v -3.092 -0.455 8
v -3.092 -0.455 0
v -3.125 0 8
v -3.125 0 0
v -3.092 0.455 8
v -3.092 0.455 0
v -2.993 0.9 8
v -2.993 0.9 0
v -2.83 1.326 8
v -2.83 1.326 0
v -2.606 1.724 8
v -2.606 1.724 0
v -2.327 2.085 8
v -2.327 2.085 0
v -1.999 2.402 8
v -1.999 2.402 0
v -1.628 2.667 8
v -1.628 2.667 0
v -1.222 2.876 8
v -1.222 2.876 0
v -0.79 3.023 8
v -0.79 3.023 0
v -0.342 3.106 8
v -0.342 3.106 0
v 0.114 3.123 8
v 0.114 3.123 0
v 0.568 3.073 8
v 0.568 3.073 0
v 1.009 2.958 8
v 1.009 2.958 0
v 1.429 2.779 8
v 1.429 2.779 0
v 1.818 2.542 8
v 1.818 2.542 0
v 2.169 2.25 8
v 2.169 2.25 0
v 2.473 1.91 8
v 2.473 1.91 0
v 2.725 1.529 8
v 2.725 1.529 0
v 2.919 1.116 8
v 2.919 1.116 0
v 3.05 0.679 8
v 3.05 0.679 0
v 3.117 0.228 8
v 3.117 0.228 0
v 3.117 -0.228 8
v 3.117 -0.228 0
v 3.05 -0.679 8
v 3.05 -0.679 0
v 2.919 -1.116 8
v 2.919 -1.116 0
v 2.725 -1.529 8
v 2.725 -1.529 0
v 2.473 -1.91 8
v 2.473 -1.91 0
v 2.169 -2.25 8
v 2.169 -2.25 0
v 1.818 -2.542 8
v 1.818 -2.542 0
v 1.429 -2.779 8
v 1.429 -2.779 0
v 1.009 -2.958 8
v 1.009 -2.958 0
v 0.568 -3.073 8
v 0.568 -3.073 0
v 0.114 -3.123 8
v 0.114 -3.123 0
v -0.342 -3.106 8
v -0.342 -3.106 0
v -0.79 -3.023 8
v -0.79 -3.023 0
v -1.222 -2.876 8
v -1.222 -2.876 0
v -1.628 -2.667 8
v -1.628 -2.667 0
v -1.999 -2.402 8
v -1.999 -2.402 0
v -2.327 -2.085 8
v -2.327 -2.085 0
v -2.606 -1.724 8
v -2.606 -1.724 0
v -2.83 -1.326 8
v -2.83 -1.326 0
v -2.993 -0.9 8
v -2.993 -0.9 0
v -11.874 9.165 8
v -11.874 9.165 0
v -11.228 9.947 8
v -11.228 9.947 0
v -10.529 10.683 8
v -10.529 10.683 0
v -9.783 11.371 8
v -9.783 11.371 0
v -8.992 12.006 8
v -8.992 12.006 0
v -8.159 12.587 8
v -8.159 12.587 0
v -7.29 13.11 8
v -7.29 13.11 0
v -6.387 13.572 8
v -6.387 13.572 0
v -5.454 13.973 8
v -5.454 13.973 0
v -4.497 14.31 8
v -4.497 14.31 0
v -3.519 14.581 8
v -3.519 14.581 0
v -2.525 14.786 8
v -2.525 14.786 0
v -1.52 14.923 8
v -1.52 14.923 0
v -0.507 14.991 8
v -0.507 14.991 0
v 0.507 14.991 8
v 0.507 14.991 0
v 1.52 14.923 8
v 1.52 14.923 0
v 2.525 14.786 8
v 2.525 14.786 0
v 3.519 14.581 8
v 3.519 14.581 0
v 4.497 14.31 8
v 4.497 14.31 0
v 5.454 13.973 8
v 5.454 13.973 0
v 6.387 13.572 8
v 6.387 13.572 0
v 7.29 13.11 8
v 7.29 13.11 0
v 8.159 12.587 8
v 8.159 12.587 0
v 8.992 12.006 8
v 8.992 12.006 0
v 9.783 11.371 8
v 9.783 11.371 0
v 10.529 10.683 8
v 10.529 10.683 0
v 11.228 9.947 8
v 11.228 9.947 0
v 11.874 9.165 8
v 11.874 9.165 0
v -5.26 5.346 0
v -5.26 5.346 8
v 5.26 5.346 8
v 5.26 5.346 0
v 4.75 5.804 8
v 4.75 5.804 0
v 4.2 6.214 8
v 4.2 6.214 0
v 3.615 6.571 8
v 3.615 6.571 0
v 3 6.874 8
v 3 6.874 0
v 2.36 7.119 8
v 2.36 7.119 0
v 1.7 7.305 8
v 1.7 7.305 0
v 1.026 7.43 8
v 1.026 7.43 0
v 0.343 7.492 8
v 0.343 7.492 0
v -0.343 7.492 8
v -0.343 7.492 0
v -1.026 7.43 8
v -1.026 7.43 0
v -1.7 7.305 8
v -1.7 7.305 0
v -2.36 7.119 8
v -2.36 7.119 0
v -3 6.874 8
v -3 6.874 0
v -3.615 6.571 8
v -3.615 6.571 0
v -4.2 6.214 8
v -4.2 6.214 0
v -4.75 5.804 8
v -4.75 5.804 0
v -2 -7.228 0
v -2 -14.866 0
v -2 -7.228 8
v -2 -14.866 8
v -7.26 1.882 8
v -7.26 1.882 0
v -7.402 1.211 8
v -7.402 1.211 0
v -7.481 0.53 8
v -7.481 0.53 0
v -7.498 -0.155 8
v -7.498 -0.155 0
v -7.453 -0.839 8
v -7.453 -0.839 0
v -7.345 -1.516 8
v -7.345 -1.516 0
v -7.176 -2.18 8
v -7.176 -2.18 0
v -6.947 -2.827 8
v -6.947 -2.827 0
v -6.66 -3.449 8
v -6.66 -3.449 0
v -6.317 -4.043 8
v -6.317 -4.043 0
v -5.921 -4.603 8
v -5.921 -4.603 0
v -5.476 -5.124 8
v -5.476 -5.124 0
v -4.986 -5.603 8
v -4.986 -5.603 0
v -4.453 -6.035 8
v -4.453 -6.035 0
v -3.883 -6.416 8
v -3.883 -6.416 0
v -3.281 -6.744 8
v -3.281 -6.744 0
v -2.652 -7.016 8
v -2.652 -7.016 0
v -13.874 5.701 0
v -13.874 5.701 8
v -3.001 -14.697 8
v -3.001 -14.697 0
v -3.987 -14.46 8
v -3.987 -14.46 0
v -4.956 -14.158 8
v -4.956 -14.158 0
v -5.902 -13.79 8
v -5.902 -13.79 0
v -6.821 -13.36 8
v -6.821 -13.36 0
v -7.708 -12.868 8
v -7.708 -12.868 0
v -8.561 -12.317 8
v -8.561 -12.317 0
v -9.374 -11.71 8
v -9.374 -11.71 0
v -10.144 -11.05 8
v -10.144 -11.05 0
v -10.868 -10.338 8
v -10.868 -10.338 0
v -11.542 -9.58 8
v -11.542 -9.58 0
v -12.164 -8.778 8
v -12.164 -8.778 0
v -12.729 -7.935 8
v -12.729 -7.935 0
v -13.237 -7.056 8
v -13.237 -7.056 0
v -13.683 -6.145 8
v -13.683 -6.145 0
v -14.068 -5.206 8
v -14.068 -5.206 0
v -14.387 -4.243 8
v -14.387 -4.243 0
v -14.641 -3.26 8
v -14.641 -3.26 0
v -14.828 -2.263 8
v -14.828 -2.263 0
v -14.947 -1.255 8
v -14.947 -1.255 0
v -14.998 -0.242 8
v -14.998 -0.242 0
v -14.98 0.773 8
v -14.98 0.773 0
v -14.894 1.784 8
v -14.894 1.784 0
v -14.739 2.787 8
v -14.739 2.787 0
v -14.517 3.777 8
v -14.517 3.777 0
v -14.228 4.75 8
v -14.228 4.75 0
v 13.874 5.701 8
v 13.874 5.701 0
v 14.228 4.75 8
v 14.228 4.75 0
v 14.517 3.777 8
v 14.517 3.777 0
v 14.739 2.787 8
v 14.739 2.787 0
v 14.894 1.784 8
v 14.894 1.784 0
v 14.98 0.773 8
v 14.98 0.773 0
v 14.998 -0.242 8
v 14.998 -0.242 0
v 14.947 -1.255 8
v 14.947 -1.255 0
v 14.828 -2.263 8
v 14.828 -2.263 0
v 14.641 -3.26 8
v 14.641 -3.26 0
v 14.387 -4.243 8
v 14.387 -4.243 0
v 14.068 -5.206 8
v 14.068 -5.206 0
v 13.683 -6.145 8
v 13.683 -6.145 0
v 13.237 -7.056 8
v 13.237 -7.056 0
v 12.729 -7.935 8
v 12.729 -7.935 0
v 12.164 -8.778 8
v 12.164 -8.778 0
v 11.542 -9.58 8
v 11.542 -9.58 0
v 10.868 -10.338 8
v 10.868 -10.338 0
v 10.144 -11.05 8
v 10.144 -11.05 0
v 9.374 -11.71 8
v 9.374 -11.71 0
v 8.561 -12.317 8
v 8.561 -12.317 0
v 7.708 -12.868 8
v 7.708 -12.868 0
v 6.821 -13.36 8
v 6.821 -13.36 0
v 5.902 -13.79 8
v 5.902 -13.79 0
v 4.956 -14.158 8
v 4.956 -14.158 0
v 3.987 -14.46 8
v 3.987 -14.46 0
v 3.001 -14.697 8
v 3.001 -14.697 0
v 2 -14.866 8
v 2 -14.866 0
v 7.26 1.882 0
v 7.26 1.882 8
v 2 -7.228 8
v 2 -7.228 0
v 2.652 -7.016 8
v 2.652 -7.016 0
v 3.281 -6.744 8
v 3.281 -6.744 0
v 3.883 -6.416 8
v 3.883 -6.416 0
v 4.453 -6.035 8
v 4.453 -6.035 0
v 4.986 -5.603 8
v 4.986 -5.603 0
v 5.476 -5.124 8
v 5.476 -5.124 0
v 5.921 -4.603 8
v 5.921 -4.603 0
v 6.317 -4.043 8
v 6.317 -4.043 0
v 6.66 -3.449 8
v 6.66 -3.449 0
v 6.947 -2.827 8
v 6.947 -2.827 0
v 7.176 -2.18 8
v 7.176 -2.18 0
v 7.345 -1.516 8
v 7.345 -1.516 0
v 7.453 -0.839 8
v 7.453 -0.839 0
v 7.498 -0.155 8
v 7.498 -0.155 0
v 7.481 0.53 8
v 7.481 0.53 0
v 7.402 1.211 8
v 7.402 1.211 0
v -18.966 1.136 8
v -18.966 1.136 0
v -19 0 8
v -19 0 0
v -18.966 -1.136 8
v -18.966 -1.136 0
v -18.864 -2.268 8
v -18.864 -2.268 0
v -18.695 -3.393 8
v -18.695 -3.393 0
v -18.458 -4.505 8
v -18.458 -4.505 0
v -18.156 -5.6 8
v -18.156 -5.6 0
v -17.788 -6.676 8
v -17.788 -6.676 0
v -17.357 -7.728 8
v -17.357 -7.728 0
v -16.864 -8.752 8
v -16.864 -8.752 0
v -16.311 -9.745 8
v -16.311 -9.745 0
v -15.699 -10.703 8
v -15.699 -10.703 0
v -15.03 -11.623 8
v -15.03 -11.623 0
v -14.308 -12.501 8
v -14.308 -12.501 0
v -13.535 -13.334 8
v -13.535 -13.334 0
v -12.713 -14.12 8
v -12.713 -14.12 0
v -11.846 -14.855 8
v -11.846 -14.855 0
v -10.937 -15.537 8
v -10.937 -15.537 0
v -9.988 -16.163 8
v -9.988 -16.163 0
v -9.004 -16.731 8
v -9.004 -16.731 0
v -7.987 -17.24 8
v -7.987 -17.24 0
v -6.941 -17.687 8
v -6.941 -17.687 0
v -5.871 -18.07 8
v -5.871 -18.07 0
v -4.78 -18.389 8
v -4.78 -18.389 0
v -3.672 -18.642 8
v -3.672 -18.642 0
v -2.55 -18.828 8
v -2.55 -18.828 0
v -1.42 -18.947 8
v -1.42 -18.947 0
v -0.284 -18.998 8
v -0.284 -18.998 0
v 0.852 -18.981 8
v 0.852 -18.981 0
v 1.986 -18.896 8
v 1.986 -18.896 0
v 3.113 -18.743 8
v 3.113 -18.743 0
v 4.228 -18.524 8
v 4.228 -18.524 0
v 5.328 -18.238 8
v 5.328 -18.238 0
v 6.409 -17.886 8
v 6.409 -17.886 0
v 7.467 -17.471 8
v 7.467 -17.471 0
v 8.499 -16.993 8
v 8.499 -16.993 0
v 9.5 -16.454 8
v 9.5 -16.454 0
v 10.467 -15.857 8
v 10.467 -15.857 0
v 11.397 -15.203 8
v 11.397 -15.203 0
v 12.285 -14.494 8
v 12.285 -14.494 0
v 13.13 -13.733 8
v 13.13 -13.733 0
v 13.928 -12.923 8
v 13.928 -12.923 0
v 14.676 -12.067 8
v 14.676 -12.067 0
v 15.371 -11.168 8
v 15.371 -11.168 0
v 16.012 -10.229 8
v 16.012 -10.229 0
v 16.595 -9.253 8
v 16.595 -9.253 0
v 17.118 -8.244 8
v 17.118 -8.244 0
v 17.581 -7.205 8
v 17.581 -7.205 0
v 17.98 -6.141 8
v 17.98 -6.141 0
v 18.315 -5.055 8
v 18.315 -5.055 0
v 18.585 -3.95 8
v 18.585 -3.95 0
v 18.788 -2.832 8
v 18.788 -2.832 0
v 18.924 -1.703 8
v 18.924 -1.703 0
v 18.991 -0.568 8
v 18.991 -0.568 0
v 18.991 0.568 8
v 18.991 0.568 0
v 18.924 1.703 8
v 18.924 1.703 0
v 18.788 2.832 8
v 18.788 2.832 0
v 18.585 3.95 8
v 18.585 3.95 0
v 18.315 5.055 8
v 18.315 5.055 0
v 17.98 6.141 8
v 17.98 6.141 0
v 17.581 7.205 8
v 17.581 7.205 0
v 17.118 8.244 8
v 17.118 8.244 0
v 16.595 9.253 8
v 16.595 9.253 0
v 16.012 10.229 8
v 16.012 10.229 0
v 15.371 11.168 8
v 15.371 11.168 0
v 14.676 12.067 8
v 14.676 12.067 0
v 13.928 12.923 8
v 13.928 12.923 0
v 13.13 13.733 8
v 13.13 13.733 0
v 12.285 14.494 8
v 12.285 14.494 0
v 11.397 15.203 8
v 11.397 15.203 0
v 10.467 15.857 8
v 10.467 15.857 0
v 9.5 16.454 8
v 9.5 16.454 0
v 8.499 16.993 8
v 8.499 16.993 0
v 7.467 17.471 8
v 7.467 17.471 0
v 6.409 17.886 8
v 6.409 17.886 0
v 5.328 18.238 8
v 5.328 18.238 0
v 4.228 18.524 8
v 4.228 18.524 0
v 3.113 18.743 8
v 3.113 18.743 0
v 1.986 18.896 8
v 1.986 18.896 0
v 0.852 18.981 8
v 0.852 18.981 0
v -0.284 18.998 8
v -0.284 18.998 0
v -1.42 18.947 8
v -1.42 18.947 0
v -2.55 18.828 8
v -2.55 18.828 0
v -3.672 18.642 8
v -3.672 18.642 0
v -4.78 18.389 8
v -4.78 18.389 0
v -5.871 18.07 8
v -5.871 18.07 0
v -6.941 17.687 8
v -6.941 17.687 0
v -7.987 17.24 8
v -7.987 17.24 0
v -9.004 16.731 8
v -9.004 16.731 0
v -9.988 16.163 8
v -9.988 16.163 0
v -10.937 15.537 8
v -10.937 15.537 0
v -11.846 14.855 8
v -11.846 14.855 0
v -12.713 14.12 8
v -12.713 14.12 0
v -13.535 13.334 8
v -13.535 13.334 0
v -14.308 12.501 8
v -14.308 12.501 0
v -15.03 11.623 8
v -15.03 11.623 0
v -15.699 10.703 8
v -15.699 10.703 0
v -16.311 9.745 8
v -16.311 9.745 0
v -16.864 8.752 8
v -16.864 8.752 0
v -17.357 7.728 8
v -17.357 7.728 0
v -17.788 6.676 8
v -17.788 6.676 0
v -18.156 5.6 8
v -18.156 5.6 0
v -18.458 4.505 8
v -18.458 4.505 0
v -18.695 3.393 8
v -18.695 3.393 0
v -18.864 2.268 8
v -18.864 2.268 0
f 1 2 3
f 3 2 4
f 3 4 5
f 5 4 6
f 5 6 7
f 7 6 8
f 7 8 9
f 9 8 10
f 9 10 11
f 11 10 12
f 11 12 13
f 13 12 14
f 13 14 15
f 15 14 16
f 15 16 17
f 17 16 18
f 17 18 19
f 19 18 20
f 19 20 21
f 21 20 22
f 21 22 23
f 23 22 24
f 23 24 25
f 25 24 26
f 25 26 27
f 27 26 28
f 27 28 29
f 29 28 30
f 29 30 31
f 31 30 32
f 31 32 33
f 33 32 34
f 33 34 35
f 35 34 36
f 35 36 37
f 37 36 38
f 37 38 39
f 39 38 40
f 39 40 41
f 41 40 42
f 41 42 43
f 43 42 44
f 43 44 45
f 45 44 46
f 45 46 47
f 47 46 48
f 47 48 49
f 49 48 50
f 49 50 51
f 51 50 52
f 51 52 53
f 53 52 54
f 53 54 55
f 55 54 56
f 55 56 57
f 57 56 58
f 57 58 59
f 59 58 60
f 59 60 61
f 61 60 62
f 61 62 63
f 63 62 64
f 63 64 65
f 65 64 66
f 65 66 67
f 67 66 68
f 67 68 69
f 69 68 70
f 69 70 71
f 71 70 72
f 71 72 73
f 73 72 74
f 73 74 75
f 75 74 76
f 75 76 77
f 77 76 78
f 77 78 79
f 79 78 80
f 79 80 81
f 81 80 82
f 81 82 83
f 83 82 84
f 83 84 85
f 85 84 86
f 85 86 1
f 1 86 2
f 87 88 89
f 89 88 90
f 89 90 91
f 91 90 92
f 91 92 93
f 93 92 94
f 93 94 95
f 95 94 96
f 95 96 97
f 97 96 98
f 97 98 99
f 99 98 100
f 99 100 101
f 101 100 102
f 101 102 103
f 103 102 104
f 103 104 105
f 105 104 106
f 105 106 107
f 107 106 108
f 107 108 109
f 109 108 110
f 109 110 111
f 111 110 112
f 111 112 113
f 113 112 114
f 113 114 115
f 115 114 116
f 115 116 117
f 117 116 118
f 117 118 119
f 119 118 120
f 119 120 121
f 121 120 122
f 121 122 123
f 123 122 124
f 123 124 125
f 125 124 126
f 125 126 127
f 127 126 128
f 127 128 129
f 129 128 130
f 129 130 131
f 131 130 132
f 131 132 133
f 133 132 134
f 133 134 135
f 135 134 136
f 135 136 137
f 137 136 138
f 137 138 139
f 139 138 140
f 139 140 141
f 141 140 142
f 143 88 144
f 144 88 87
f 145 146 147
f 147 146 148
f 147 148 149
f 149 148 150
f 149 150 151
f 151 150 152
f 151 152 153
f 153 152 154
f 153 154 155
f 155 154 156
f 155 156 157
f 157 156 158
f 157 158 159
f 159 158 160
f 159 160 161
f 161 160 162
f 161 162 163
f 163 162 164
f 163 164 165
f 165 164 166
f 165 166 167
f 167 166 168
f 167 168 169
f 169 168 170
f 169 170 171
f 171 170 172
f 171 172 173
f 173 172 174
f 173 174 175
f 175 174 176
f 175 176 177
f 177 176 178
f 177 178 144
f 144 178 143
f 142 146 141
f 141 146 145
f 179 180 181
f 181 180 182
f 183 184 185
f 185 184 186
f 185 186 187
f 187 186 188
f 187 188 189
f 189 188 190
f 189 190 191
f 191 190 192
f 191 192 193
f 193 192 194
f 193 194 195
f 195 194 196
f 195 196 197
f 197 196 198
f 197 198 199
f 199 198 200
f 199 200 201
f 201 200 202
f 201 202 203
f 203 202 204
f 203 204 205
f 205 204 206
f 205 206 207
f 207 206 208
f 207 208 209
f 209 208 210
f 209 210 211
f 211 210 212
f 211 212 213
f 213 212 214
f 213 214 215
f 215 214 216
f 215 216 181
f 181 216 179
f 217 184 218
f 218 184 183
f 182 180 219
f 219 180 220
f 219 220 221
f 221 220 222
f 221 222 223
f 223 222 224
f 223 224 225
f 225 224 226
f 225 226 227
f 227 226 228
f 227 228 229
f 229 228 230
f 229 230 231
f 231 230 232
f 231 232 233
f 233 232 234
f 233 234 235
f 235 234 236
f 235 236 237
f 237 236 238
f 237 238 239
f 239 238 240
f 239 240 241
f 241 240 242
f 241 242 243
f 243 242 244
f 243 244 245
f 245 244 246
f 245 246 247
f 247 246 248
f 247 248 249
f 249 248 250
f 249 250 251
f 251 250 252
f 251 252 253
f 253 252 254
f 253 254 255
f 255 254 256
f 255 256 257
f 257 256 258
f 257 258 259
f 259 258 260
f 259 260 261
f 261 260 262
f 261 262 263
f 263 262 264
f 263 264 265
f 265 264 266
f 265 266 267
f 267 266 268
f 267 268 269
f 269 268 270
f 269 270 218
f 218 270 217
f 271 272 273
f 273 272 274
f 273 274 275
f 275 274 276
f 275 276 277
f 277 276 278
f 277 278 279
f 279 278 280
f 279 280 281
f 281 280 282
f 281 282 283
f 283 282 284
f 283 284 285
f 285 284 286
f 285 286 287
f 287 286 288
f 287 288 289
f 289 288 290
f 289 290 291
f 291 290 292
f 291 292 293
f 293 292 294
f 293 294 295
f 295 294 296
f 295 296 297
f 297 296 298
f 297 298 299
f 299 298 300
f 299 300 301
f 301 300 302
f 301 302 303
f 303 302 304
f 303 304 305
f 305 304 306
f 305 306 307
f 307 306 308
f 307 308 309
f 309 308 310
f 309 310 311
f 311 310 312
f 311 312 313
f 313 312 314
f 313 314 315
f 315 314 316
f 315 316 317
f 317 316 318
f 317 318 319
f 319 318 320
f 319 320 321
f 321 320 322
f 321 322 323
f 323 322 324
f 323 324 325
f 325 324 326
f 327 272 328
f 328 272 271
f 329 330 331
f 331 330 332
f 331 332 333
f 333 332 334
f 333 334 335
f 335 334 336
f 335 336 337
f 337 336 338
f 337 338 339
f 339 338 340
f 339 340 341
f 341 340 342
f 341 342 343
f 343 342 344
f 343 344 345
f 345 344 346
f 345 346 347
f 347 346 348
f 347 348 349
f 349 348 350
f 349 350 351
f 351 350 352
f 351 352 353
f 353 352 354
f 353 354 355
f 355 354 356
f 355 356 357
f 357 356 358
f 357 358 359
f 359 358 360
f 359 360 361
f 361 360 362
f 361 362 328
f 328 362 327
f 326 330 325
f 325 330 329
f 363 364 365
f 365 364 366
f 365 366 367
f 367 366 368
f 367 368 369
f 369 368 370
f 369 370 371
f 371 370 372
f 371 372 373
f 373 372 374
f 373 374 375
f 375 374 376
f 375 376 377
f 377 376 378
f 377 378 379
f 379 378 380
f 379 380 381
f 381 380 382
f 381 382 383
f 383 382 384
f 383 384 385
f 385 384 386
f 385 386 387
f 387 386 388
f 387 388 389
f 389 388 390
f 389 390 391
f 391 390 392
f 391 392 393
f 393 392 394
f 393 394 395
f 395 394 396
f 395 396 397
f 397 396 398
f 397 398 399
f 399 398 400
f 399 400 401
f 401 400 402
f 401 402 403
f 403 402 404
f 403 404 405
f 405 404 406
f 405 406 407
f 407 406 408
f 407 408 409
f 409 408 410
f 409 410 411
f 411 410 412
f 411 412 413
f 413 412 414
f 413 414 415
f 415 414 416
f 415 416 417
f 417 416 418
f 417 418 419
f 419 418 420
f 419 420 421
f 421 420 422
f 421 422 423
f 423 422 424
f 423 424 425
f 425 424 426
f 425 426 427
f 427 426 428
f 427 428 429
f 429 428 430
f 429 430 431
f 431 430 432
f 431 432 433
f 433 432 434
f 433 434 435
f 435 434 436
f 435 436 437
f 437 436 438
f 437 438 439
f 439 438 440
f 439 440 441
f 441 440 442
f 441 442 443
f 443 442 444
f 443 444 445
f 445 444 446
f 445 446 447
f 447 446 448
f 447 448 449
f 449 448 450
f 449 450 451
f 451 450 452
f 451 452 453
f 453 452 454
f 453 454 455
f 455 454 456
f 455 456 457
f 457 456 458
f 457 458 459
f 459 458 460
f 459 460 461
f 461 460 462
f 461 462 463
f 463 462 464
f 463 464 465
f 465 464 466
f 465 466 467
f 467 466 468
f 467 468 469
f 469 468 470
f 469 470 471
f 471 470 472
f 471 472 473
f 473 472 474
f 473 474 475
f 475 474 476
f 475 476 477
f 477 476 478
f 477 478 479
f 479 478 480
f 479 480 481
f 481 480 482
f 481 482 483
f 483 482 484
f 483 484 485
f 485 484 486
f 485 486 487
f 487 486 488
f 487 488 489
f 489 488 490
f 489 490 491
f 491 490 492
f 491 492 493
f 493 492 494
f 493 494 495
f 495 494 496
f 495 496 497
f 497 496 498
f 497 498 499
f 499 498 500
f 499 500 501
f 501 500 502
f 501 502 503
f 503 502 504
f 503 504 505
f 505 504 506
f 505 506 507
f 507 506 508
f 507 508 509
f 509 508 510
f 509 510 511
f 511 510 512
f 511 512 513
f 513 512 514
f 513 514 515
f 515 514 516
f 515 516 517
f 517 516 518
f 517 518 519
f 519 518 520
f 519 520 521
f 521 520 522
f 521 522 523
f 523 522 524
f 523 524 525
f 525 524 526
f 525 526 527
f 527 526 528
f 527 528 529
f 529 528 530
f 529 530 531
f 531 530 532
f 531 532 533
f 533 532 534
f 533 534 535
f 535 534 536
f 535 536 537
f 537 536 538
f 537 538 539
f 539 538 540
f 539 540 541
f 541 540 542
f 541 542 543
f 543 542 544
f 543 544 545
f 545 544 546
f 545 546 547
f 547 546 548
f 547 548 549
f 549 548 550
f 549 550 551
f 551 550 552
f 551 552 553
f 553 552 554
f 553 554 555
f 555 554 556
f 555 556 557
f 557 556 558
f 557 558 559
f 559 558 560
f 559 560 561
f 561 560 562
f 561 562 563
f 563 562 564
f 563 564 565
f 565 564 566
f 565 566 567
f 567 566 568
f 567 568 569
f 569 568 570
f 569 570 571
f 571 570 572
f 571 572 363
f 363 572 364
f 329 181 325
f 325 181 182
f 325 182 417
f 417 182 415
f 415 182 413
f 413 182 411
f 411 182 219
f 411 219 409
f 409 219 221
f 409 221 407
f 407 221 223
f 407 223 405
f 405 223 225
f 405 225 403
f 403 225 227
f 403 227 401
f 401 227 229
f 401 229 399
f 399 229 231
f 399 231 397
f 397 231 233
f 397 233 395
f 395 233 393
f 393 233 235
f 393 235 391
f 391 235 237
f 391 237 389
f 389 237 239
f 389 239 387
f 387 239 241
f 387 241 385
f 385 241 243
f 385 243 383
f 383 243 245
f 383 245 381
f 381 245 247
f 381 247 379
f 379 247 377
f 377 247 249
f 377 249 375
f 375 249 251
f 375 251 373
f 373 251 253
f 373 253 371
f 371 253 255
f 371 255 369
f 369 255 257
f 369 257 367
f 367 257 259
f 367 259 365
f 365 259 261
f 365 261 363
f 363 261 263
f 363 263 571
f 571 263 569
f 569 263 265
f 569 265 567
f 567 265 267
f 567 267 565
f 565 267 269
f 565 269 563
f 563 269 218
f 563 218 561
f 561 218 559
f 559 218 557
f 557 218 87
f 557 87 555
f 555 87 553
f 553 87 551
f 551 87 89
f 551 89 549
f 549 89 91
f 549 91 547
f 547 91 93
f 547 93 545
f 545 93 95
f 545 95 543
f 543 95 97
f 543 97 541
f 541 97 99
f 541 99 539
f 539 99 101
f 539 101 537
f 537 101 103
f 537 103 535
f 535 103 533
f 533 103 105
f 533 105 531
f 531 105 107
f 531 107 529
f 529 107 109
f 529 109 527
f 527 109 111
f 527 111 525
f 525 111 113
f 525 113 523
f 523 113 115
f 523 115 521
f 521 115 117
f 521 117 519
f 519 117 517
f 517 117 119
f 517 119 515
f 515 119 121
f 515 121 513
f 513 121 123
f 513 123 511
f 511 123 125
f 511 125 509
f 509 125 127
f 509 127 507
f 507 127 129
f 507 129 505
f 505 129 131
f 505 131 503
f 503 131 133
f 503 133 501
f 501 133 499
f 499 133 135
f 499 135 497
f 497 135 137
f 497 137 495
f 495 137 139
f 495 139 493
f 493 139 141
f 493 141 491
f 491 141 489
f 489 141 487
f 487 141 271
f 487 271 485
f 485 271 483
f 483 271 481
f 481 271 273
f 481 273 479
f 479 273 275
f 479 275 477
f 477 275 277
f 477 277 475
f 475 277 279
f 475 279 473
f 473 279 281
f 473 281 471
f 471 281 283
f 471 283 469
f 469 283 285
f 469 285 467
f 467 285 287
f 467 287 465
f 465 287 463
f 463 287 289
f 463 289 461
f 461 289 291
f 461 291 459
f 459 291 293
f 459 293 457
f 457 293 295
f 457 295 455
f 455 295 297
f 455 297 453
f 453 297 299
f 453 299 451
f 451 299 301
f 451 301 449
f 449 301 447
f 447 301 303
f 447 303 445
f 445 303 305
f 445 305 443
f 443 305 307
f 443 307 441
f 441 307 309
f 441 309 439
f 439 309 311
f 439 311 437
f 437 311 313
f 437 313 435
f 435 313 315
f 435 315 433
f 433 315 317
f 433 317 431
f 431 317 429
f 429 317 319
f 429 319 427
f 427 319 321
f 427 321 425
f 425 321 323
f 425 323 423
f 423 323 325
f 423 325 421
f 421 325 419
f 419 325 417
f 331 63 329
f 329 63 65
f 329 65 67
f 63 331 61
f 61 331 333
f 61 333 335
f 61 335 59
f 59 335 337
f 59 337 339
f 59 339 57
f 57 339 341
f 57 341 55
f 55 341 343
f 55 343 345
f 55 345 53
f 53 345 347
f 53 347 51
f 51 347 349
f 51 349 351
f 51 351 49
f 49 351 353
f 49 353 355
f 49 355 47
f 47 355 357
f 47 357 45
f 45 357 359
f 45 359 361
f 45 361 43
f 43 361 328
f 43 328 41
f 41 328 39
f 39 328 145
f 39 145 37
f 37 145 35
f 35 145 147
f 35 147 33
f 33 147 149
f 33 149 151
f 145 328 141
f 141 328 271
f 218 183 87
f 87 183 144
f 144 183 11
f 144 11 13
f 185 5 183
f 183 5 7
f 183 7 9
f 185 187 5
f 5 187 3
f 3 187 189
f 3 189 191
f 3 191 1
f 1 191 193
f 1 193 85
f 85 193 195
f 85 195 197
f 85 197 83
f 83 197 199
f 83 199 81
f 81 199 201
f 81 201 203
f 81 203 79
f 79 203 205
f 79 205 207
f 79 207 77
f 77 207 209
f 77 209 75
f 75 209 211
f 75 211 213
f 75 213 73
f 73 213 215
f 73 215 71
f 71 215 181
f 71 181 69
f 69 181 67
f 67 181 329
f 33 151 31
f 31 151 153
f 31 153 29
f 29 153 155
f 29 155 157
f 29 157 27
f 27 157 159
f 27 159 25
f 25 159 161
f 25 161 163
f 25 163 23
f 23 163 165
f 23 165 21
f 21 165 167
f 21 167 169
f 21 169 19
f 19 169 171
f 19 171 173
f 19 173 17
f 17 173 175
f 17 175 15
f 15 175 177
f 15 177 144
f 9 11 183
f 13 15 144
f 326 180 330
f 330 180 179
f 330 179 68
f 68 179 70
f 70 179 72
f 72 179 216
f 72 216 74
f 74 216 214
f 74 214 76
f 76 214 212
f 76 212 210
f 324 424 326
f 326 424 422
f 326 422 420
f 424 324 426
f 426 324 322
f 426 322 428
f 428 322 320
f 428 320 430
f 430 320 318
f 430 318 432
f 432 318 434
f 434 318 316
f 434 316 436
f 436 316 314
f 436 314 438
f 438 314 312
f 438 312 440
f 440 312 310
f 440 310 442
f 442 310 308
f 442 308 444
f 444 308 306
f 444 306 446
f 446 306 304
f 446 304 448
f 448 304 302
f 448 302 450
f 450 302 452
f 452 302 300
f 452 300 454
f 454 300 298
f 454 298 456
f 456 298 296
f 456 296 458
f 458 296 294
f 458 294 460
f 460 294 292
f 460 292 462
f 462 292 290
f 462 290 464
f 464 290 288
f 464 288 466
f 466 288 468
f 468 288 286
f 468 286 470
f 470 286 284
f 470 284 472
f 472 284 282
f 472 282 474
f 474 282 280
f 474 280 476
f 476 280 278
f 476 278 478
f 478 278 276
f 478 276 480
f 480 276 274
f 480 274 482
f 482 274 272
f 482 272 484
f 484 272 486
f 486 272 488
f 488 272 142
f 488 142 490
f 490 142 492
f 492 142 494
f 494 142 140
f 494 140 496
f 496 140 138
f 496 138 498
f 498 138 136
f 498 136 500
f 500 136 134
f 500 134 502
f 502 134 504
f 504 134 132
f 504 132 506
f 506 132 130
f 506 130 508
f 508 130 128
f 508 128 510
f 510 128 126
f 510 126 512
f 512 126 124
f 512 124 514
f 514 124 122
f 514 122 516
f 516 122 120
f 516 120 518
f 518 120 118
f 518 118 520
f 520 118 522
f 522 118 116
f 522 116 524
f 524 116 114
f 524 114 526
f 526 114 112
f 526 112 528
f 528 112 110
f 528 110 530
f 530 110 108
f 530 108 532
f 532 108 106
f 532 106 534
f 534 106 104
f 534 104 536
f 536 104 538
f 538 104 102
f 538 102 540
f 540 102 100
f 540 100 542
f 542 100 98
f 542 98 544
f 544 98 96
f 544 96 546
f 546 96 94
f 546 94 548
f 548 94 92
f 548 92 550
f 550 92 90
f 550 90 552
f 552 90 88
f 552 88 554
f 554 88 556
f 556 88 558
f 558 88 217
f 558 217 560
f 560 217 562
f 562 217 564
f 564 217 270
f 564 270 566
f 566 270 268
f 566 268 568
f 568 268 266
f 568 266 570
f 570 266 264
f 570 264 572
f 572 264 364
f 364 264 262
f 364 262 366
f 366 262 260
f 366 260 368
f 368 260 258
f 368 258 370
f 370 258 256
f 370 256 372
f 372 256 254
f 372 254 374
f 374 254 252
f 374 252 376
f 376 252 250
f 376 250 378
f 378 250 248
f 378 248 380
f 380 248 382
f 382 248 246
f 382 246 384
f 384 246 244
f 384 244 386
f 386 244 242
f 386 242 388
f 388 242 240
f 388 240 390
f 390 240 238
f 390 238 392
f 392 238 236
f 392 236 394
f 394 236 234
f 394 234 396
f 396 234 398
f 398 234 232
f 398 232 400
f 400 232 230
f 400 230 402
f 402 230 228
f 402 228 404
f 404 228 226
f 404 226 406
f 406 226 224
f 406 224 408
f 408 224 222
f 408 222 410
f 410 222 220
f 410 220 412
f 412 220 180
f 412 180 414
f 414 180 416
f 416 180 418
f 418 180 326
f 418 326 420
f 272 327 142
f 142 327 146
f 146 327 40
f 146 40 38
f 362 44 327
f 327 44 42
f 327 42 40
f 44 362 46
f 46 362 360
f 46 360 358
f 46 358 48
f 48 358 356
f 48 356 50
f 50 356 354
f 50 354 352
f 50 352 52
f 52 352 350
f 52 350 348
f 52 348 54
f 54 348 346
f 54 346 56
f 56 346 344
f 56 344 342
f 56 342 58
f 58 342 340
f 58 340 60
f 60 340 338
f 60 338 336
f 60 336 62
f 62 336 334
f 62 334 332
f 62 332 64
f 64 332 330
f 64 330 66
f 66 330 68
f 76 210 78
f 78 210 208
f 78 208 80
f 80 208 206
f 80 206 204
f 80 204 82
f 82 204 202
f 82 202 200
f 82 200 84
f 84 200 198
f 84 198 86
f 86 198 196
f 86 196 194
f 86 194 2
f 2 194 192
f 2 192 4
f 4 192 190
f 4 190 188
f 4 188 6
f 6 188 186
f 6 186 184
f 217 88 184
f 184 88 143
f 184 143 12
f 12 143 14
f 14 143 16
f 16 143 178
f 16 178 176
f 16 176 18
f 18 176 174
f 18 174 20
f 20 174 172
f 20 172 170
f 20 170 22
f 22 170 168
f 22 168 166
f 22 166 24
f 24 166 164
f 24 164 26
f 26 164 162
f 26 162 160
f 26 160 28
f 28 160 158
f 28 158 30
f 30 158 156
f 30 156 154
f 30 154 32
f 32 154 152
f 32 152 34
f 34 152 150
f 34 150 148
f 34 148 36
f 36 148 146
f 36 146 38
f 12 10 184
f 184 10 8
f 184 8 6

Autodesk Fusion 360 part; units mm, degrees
sketch "Sketch1" plane through (0, 0, 0) normal (0, 0, 1) x (1, 0, 0)
  circle A0 centre (0, 0) radius 3.125
  circle A1 centre (0, 0) radius 19
  circle A2 centre (0, 0) radius 7.5
  circle A3 centre (0, 0) radius 15
  line L0 (-2, -6) -> (2, -6)
  line L1 (2, -6) -> (2, -16)
  line L2 (2, -16) -> (-2, -16)
  line L3 (-2, -16) -> (-2, -6)
  line L4 (4.1962, 4.7321) -> (12.8564, 9.7321)
  line L5 (14.8564, 6.2679) -> (6.1962, 1.2679)
  line L6 (-6.1962, 1.2679) -> (-14.8564, 6.2679)
  line L7 (-12.8564, 9.7321) -> (-4.1962, 4.7321)
  dimension "d1" = 6.25
  dimension "d2" = 38
  dimension "d3" = 15
  dimension "d5" = 360
extrude "Extrude1" add sketch "Sketch1" along normal blind 8 contours A1 | A2 L0 L1 L3 | A2 A3 L4 L5 | A2 A3 L1 L3 | A2 L0 L1 L3 | A3 L1 L2 L3 | A2 A3 L6 L7
